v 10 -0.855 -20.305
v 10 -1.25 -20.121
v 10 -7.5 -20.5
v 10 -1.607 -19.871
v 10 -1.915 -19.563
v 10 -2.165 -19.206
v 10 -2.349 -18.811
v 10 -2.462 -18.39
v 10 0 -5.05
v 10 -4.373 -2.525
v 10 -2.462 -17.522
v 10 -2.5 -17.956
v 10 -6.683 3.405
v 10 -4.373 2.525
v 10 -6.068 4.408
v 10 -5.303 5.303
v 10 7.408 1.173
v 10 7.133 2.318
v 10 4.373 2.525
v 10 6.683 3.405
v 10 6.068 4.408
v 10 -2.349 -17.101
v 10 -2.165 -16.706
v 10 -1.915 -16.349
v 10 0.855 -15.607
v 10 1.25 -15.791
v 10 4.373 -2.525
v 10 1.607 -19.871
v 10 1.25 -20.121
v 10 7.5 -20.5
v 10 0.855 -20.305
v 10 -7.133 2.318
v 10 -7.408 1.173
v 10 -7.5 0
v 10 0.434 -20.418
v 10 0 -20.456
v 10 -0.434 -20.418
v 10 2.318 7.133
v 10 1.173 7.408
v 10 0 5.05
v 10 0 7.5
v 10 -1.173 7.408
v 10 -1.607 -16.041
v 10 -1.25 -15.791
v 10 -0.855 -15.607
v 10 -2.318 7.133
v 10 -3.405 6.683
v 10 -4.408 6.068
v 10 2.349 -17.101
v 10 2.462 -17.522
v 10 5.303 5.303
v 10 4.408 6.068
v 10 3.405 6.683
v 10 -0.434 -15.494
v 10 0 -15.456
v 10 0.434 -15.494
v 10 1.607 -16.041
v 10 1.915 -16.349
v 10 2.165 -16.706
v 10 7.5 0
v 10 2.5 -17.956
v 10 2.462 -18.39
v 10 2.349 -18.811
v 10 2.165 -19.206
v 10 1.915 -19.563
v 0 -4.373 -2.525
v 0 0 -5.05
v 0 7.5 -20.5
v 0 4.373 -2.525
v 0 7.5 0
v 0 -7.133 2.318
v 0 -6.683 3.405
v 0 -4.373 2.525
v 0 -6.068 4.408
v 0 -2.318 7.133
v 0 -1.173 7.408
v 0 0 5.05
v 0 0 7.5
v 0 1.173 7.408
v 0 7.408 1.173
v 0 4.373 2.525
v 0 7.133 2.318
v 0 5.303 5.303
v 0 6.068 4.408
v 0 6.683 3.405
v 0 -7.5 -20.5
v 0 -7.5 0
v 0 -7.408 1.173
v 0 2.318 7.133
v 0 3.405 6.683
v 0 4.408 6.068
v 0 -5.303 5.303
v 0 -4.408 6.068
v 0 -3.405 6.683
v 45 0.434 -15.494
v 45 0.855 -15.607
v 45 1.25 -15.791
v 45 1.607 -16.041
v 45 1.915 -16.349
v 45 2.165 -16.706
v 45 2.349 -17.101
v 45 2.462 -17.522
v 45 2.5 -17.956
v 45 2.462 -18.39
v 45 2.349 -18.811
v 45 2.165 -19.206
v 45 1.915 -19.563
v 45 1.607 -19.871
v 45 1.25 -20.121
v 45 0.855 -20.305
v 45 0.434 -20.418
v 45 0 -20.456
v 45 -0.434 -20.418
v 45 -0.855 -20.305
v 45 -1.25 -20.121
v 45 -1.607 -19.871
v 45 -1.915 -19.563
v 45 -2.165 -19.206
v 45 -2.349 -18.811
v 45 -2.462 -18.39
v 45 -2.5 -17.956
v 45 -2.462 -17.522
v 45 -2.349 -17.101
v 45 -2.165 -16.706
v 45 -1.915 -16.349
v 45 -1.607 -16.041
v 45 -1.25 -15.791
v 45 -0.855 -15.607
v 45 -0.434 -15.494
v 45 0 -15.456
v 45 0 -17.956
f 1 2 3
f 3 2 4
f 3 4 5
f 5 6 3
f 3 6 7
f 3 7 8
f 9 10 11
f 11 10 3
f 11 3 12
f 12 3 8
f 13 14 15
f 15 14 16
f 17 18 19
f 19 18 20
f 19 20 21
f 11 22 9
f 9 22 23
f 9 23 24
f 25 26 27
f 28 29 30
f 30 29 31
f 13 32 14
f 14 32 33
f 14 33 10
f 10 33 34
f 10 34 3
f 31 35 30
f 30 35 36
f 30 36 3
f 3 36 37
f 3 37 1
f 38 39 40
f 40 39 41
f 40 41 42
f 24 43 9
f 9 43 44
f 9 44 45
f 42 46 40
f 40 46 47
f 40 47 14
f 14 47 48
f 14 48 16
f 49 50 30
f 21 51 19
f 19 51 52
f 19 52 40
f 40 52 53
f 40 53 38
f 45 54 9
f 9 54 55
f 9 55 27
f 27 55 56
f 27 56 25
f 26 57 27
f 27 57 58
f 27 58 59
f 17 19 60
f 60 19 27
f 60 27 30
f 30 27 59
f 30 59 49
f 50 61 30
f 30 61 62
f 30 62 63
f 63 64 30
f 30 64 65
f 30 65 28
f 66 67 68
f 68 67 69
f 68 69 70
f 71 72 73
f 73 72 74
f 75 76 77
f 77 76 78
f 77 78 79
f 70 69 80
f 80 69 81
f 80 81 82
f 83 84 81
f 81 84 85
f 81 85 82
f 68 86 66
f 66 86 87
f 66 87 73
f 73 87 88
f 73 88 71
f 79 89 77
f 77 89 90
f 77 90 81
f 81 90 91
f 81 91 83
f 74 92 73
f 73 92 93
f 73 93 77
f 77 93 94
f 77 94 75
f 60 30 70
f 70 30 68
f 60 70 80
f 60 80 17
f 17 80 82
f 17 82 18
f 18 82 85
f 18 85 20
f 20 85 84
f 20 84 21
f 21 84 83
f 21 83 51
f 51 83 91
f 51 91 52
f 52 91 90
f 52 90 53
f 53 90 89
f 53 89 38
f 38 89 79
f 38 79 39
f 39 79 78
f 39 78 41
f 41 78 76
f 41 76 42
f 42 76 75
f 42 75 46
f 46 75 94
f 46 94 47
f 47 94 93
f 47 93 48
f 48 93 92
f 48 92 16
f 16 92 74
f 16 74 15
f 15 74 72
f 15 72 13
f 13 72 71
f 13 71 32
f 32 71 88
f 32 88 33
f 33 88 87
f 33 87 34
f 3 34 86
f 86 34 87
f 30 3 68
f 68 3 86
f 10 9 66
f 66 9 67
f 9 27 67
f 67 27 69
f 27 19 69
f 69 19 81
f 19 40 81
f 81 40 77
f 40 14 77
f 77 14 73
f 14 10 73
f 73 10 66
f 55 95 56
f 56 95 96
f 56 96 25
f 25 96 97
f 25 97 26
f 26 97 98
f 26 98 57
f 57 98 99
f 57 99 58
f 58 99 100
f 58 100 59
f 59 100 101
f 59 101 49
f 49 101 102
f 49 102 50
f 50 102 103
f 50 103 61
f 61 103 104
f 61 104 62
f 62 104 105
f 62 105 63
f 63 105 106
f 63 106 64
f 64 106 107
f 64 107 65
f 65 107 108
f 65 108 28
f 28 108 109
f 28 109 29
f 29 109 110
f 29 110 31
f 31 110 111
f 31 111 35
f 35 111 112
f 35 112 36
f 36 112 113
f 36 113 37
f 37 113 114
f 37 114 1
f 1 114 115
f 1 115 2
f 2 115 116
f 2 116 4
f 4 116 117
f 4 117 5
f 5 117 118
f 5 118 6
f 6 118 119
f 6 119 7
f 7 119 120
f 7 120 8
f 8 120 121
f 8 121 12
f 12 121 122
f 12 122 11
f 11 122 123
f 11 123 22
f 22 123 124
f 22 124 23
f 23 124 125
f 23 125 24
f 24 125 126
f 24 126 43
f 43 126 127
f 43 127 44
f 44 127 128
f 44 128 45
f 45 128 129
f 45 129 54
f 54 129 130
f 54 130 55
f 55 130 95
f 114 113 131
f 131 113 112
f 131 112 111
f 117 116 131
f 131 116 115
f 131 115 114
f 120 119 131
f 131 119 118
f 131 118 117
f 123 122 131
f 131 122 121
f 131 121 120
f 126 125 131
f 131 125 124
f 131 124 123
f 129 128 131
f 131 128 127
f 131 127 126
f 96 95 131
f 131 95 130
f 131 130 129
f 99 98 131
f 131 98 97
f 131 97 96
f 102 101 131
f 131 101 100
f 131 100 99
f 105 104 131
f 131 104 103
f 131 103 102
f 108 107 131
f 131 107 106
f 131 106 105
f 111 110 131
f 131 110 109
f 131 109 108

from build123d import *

# Parameters (mm, degrees)
BOSS_EXTRUDE1_DEPTH = 10
SKETCH2_R           = 2.5
BOSS_EXTRUDE2_DEPTH = 35


with BuildPart() as part:
    # Sketch1 → Boss-Extrude1 (new body)
    with BuildSketch(Plane(origin=(0, 0, 0), x_dir=(0, 0, -1), z_dir=(1, 0, 0))):
        with BuildLine():
            Line((0, 7.5), (20.5, 7.5))
            Line((20.5, 7.5), (20.5, -7.5))
            Line((20.5, -7.5), (0, -7.5))
            ThreePointArc((0, -7.5), (-7.5, 0), (0, 7.5))
        make_face()
        Polygon((5.05, 0), (2.525, 4.373428289), (-2.525, 4.373428289), (-5.05, 0), (-2.525, -4.373428289), (2.525, -4.373428289), align=None, mode=Mode.SUBTRACT)
    extrude(amount=BOSS_EXTRUDE1_DEPTH)

    # Sketch2 → Boss-Extrude2 (add)
    with BuildSketch(Plane(origin=(10, 0, 0), x_dir=(0, 0, -1), z_dir=(1, 0, 0))):
        with Locations((17.956042915, 0)):
            Circle(SKETCH2_R)
    extrude(amount=BOSS_EXTRUDE2_DEPTH)


solid = part.part
